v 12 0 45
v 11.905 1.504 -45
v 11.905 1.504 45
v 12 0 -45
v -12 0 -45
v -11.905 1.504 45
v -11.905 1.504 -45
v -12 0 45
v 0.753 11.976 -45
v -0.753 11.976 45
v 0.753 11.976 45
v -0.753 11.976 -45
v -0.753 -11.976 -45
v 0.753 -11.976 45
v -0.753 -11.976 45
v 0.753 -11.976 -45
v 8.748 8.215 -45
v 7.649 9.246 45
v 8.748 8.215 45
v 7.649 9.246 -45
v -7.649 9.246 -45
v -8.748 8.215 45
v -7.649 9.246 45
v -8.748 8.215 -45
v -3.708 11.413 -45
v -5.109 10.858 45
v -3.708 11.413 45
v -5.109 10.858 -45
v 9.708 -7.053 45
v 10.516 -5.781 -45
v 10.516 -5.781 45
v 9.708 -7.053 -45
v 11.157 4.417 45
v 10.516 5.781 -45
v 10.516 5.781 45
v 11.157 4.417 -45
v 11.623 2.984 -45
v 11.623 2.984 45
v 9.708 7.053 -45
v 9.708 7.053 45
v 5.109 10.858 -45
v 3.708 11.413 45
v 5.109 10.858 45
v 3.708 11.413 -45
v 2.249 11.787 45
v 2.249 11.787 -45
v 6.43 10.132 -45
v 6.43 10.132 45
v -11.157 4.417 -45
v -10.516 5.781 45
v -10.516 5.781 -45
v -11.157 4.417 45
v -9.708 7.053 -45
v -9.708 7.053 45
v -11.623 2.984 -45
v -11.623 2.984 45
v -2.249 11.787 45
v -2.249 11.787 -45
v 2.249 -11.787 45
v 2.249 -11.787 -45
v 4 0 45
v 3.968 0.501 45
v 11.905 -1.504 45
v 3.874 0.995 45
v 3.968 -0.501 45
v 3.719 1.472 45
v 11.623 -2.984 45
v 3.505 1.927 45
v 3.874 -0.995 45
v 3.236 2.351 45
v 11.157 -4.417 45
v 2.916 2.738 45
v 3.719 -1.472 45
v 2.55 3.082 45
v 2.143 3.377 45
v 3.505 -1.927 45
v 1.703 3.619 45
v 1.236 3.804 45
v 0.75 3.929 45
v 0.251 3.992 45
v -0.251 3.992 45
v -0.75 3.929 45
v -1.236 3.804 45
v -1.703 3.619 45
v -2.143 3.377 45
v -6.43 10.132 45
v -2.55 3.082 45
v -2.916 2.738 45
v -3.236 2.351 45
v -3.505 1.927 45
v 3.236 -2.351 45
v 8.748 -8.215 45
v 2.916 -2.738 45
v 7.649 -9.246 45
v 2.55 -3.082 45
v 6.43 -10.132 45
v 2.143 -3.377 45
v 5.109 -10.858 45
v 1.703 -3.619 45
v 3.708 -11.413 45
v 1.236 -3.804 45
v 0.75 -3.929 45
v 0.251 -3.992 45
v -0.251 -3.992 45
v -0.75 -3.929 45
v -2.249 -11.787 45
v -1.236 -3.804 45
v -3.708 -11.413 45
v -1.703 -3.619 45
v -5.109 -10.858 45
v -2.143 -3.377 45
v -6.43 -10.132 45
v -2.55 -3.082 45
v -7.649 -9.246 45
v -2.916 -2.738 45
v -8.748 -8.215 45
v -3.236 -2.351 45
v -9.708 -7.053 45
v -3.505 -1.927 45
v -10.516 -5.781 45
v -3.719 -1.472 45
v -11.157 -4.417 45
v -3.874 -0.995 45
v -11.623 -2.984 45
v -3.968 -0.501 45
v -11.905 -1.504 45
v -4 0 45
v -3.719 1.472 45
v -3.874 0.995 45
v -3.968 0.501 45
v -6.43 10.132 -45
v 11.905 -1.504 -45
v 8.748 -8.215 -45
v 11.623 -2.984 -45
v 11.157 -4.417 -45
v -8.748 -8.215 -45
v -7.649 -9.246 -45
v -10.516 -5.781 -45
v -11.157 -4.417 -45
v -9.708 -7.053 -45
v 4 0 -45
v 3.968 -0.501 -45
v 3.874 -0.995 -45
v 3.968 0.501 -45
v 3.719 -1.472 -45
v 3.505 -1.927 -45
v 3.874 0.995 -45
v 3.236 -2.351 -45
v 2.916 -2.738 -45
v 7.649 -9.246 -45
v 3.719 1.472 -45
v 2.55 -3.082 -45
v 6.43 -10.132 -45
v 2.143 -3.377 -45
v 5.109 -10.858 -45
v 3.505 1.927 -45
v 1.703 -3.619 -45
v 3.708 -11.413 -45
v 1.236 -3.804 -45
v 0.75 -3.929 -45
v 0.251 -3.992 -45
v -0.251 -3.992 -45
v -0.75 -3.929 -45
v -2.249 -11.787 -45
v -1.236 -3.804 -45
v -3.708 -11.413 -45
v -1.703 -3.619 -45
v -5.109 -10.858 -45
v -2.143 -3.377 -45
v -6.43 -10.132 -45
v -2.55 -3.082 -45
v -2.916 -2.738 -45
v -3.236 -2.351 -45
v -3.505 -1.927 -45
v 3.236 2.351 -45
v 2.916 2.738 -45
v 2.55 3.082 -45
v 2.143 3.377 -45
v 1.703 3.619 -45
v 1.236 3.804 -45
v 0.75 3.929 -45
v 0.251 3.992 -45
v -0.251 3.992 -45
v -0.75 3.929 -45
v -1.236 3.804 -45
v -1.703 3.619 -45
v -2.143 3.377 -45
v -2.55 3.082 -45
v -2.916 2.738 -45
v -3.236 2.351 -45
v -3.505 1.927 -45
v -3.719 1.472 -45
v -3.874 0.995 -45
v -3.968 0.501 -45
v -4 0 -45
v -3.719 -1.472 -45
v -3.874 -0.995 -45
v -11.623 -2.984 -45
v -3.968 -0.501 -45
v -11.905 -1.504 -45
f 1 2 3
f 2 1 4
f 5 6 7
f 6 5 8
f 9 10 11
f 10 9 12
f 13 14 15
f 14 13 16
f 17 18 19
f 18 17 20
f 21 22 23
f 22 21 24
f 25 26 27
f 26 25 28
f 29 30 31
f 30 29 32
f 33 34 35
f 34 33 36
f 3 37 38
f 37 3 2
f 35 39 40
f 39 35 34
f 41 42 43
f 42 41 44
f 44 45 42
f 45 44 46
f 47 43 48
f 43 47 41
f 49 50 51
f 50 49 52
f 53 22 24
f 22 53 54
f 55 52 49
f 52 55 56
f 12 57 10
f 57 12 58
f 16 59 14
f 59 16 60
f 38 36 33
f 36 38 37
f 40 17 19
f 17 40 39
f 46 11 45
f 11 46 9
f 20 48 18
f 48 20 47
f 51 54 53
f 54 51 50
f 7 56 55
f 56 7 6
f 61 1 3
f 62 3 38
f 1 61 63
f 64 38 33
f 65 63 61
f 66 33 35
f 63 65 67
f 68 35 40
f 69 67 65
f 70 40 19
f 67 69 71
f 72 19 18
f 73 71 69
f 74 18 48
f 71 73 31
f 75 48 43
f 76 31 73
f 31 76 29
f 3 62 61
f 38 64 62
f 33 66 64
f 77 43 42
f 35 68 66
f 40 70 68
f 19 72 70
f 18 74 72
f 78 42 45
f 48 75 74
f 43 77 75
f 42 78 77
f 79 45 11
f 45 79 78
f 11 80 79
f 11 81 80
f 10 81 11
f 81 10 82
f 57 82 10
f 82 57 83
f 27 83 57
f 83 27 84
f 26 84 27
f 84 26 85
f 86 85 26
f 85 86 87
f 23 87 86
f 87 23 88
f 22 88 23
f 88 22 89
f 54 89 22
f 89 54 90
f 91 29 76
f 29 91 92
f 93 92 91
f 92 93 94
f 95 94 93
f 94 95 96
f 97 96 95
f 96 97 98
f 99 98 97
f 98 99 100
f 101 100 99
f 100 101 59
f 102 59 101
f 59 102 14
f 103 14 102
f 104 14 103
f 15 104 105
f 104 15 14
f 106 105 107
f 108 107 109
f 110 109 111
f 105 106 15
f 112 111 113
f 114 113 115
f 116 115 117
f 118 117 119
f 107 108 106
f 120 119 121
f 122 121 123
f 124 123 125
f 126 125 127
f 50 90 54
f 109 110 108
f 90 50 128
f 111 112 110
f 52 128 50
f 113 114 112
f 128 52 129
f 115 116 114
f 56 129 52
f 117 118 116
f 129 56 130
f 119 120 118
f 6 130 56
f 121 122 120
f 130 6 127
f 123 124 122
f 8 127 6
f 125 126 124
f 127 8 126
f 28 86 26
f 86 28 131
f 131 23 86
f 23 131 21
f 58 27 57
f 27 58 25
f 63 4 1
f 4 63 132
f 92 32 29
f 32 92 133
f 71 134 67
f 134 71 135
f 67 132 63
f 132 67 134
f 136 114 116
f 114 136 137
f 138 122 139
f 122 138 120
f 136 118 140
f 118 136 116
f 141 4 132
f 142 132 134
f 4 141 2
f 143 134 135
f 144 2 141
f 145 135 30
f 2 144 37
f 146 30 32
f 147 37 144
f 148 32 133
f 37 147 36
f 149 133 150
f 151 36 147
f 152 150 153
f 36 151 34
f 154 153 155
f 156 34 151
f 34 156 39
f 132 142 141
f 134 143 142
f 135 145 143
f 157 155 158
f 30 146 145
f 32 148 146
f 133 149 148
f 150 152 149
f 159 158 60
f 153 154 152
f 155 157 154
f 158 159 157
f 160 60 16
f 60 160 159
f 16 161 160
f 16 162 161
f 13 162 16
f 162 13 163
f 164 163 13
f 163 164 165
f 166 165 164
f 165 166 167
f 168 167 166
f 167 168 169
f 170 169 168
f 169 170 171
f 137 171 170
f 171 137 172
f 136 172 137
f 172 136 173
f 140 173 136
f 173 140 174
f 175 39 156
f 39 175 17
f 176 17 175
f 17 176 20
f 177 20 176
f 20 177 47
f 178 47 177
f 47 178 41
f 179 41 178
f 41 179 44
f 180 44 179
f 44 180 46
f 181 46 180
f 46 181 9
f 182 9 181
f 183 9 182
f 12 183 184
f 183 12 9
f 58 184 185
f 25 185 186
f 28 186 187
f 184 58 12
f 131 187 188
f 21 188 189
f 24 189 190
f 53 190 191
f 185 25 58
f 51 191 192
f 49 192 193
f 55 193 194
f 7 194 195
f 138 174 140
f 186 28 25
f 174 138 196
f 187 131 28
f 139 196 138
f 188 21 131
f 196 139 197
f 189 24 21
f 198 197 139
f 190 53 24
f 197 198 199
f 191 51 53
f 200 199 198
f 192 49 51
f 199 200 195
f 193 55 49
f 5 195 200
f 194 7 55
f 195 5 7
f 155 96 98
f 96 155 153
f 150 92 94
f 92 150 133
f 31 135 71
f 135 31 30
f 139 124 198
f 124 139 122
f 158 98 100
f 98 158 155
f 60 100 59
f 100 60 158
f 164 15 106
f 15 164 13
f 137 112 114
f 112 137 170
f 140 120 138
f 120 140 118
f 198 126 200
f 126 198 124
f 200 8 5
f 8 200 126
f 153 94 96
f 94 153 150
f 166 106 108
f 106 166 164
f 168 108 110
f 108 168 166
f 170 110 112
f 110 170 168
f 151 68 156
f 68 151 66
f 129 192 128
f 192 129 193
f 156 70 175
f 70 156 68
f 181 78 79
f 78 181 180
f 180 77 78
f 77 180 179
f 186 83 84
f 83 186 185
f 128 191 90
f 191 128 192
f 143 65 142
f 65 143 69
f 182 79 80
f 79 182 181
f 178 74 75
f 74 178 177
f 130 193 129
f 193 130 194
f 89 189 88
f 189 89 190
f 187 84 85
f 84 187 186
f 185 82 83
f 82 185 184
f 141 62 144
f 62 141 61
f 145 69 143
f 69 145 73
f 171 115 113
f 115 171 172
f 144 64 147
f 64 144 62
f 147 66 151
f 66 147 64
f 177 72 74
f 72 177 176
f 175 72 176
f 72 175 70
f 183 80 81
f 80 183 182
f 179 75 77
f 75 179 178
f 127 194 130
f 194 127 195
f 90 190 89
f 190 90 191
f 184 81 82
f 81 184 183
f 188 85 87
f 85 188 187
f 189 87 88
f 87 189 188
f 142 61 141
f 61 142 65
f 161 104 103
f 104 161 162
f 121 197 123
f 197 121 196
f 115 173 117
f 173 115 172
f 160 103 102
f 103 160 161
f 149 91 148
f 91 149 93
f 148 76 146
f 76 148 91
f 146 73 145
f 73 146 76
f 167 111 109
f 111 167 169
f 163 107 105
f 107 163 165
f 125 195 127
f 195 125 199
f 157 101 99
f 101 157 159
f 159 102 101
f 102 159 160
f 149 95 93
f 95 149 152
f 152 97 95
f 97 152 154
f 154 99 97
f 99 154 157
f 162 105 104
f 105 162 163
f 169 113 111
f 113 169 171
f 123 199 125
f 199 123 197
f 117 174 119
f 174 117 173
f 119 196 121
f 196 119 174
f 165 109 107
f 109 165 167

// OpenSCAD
$fn = 50;


difference() {
	union() {
		translate(v = [0, 0, -45.0000000000]) {
			cylinder(h = 90, r = 12.0000000000);
		}
	}
	union() {
		translate(v = [0, 0, -100.0000000000]) {
			cylinder(h = 200, r = 4);
		}
	}
}
